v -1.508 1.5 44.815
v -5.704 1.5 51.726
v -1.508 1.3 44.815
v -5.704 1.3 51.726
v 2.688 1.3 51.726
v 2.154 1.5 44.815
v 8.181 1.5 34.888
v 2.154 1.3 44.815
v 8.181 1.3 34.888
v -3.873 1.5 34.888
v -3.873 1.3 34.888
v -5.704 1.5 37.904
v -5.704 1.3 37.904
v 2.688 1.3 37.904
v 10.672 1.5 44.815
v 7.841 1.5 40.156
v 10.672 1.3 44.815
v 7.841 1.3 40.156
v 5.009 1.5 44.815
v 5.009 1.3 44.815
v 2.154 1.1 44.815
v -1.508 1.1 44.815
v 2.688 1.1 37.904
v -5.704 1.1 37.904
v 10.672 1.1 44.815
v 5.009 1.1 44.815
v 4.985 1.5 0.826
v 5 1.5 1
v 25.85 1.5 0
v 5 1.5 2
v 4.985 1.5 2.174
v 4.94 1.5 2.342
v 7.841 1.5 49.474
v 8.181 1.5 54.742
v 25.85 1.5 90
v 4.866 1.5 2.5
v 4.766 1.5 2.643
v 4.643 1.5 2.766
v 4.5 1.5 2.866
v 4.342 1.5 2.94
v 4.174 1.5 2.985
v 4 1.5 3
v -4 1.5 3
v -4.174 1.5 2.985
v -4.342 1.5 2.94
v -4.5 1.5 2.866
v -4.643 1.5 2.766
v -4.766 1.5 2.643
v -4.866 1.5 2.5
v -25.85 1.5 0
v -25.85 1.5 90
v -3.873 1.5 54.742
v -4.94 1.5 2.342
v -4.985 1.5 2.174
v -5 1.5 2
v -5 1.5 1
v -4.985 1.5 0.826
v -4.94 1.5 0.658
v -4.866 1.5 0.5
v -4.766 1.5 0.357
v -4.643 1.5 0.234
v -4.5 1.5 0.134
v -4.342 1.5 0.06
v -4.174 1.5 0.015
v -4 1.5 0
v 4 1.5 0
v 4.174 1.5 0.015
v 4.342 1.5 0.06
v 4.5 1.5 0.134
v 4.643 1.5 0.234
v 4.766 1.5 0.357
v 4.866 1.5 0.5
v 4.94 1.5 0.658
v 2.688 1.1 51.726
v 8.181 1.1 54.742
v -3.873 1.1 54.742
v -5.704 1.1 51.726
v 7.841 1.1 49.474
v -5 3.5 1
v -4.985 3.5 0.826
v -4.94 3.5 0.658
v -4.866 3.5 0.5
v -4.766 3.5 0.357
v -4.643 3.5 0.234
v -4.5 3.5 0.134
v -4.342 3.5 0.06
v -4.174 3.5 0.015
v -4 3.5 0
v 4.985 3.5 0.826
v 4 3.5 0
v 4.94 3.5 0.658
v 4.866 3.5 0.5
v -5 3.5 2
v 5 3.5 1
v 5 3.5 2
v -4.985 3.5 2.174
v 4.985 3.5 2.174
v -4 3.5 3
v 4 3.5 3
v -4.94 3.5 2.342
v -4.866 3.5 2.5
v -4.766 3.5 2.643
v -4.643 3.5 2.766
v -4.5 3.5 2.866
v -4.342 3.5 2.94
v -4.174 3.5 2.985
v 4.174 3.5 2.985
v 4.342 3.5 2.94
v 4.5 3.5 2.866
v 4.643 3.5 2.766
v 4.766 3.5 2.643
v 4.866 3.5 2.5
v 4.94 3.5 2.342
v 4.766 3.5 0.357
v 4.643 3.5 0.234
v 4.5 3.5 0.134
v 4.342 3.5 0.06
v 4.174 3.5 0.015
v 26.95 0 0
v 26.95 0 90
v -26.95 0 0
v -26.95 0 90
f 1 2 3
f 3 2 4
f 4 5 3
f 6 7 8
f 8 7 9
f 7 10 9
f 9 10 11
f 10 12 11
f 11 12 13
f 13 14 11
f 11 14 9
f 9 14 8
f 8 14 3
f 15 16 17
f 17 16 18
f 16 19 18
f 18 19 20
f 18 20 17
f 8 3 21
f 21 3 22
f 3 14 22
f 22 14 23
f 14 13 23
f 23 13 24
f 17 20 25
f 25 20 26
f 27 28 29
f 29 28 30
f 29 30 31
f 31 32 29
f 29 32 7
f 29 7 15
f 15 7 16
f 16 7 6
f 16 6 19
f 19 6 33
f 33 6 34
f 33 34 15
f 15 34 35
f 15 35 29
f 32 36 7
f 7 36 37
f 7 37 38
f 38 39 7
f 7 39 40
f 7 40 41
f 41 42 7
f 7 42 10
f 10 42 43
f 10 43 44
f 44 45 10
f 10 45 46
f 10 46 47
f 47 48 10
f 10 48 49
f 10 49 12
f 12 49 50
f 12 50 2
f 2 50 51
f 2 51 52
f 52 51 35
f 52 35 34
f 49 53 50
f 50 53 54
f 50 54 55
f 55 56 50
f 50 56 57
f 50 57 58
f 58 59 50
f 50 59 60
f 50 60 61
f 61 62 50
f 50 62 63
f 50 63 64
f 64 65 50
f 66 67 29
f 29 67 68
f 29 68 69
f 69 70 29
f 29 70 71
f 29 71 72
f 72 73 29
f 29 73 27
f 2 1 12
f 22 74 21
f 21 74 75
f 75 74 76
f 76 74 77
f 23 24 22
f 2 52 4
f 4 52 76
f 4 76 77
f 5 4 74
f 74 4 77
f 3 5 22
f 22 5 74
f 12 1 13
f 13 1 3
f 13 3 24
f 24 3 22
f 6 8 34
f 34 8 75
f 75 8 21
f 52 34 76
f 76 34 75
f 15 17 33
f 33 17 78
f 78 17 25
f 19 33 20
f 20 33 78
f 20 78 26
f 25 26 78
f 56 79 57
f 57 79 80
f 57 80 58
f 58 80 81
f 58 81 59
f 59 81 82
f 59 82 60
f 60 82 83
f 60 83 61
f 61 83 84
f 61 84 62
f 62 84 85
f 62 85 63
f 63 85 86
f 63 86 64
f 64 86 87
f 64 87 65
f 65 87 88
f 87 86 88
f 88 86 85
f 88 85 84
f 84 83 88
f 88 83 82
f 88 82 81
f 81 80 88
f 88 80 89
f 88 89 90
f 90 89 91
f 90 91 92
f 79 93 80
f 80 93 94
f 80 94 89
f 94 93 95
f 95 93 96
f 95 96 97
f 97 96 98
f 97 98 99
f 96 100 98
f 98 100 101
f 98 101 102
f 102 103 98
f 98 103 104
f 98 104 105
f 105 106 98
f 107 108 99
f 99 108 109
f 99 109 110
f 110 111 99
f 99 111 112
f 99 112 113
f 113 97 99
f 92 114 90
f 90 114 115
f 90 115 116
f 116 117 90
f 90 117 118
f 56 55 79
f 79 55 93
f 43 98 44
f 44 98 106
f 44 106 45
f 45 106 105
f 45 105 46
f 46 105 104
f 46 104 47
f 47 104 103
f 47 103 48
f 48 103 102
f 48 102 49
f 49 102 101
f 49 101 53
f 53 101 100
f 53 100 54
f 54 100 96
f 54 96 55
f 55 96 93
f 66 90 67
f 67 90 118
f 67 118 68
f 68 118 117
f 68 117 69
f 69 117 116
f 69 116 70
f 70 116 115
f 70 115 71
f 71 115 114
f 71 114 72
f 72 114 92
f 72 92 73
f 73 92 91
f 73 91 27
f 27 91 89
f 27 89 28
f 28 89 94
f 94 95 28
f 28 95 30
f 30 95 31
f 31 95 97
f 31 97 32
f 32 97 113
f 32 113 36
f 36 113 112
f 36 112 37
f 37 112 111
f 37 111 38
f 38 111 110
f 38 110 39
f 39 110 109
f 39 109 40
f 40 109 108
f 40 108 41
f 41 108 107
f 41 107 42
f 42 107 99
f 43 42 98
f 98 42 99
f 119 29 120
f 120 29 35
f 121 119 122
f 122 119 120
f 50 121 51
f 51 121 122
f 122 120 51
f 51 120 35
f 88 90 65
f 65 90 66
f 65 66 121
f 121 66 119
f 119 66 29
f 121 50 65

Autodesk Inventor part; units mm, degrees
ref_plane "YZ Plane" through (0, 0, 0) normal (1, 0, 0) x (0, 1, 0)
ref_plane "XZ Plane" through (0, 0, 0) normal (0, 1, 0) x (-1, 0, 0)
ref_plane "XY Plane" through (0, 0, 0) normal (0, 0, 1) x (1, 0, 0)
sketch "Эскиз1" plane through (0, 0, 0) normal (0, 0, 1) x (1, 0, 0)
  line L0 (0, -0.6) -> (0, 3.6) projected
  line L1 (0, 0) -> (0, 3)
  line L2 (-24.75, 3) -> (24.75, 3)
  line L3 (-26.95, 0) -> (26.95, 0)
  line L4 (-24.75, 3) -> (-26.95, 0)
  line L5 (24.75, 3) -> (26.95, 0)
  line L6 (-25.85, 1.5) -> (25.85, 1.5)
  dimension "d1" = 3
  dimension "d3" = 49.5
  dimension "d4" = 53.9
extrude "Выдавливание1" add sketch "Эскиз1" along normal blind 90 contours L3 L4 L6 L0 | L0 L6 L5 L3
sketch "Эскиз2" plane through (-25.85, 1.5, 0) normal (0, 1, 0) x (1, 0, 0)
  line L0 (-1.1, 0) -> (52.8, 0) projected
  line L1 (20.85, 0) -> (30.85, 0)
  line L2 (30.85, 0) -> (30.85, -3)
  line L3 (30.85, -3) -> (20.85, -3)
  line L4 (20.85, -3) -> (20.85, 0)
  line L5 (25.85, 18) -> (25.85, -108) projected
  point P0 (25.85, 0)
  dimension "d7" = 10
  dimension "d8" = 3
extrude "Выдавливание2" add sketch "Эскиз2" along normal blind 2
fillet "Сопряжение1" radius 1 4 edges at (5, 2.5, 3) (5, 2.5, 0) (-5, 2.5, 3) (-5, 2.5, 0)
sketch "Эскиз7" plane through (-25.85, 1.5, 90) normal (0, 1, 0) x (1, 0, 0)
  line L0 (0, 90) -> (-1.1, 90) projected
  line L1 (45.7625, 90) -> (45.7625, 0) construction
  line L2 (45.7625, 0) -> (5.9375, 0) construction
  line L3 (5.9375, 0) -> (5.9375, 90) construction
  line L4 (5.9375, 90) -> (45.7625, 90) construction
  line L5 (51.7, 0) -> (0, 0) projected
  line L6 (-1.1, 0) -> (52.8, 0) projected
  line L7 (21.9773, 55.1118) -> (20.1462, 52.0958)
  line L8 (20.1462, 52.0958) -> (24.3419, 45.1851)
  line L9 (21.9773, 55.1118) -> (34.0311, 55.1118)
  line L10 (34.0311, 55.1118) -> (28.0042, 45.1851)
  line L11 (28.0042, 45.1851) -> (24.3419, 45.1851)
  line L12 (20.1462, 52.0958) -> (28.5377, 52.0958)
  line L13 (28.5377, 52.0958) -> (24.3419, 45.1851)
  line L14 (30.8592, 45.1851) -> (36.522, 45.1851)
  line L15 (36.522, 45.1851) -> (33.6906, 49.8437)
  line L16 (33.6906, 49.8437) -> (30.8592, 45.1851)
  line L17 (33.6906, 49.8437) -> (33.6906, 45.1851) construction
  line L18 (24.3419, 45.1851) -> (24.3419, 52.0958) construction
  line L19 (28.0042, 45.1851) -> (28.0042, 55.1118) construction
  line L20 (21.9773, 35.2585) -> (20.1462, 38.2745)
  line L21 (20.1462, 38.2745) -> (24.3419, 45.1851)
  line L22 (21.9773, 35.2585) -> (34.0311, 35.2585)
  line L23 (34.0311, 35.2585) -> (28.0042, 45.1851)
  line L24 (20.1462, 38.2745) -> (28.5377, 38.2745)
  line L25 (28.5377, 38.2745) -> (24.3419, 45.1851)
  line L26 (36.522, 45.1851) -> (33.6906, 40.5265)
  line L27 (33.6906, 40.5265) -> (30.8592, 45.1851)
  line L28 (33.6906, 40.5265) -> (33.6906, 45.1851) construction
  line L29 (24.3419, 45.1851) -> (24.3419, 38.2745) construction
  line L30 (28.0042, 45.1851) -> (28.0042, 35.2585) construction
  point P0 (25.85, 90)
  point P1 (51.7, 90)
  point P2 (25.85, 0)
emboss "Рельеф1" sketch "Эскиз7" operation cut depth 0.4 direction (0, -1, 0) contours L12 L13 L8 | L11 L23 L22 L20 L24 L25 | L14 L26 L27
sketch "Эскиз8" plane through (-25.85, 1.5, 90) normal (0, 1, 0) x (1, 0, 0)
  line L0 (30.8592, 45.1851) -> (36.522, 45.1851) projected
  line L1 (33.6906, 40.5265) -> (30.8592, 45.1851) projected
  line L2 (36.522, 45.1851) -> (33.6906, 40.5265) projected
  line L3 (24.3419, 45.1851) -> (28.0042, 45.1851) projected
  line L4 (28.5377, 38.2745) -> (24.3419, 45.1851) projected
  line L5 (20.1462, 38.2745) -> (28.5377, 38.2745) projected
  line L6 (21.9773, 35.2585) -> (20.1462, 38.2745) projected
  line L7 (34.0311, 35.2585) -> (21.9773, 35.2585) projected
  line L8 (28.0042, 45.1851) -> (34.0311, 35.2585) projected
  line L9 (20.1462, 52.0958) -> (28.5377, 52.0958) projected
  line L10 (24.3419, 45.1851) -> (20.1462, 52.0958) projected
  line L11 (28.5377, 52.0958) -> (24.3419, 45.1851) projected
  line L12 (33.6906, 49.8437) -> (30.8592, 45.1851)
  line L13 (36.522, 45.1851) -> (33.6906, 49.8437)
  line L14 (28.5377, 52.0958) -> (24.3419, 45.1851)
  line L15 (20.1462, 52.0958) -> (28.5377, 52.0958)
  line L16 (21.9773, 55.1118) -> (20.1462, 52.0958)
  line L17 (34.0311, 55.1118) -> (21.9773, 55.1118)
  line L18 (28.0042, 45.1851) -> (34.0311, 55.1118)
  line L19 (20.1462, 38.2745) -> (28.5377, 38.2745)
  line L20 (24.3419, 45.1851) -> (20.1462, 38.2745)
  line L21 (28.5377, 38.2745) -> (24.3419, 45.1851)
  point P0 (25.85, 90)
extrude "Выдавливание3" cut sketch "Эскиз8" against normal blind 0.2 contours L12 L13 L0 | L11 L9 L16 L17 L18 L3 | L4 L5 L20
properties part number "cover2_3DПЕЧАТЬ"
